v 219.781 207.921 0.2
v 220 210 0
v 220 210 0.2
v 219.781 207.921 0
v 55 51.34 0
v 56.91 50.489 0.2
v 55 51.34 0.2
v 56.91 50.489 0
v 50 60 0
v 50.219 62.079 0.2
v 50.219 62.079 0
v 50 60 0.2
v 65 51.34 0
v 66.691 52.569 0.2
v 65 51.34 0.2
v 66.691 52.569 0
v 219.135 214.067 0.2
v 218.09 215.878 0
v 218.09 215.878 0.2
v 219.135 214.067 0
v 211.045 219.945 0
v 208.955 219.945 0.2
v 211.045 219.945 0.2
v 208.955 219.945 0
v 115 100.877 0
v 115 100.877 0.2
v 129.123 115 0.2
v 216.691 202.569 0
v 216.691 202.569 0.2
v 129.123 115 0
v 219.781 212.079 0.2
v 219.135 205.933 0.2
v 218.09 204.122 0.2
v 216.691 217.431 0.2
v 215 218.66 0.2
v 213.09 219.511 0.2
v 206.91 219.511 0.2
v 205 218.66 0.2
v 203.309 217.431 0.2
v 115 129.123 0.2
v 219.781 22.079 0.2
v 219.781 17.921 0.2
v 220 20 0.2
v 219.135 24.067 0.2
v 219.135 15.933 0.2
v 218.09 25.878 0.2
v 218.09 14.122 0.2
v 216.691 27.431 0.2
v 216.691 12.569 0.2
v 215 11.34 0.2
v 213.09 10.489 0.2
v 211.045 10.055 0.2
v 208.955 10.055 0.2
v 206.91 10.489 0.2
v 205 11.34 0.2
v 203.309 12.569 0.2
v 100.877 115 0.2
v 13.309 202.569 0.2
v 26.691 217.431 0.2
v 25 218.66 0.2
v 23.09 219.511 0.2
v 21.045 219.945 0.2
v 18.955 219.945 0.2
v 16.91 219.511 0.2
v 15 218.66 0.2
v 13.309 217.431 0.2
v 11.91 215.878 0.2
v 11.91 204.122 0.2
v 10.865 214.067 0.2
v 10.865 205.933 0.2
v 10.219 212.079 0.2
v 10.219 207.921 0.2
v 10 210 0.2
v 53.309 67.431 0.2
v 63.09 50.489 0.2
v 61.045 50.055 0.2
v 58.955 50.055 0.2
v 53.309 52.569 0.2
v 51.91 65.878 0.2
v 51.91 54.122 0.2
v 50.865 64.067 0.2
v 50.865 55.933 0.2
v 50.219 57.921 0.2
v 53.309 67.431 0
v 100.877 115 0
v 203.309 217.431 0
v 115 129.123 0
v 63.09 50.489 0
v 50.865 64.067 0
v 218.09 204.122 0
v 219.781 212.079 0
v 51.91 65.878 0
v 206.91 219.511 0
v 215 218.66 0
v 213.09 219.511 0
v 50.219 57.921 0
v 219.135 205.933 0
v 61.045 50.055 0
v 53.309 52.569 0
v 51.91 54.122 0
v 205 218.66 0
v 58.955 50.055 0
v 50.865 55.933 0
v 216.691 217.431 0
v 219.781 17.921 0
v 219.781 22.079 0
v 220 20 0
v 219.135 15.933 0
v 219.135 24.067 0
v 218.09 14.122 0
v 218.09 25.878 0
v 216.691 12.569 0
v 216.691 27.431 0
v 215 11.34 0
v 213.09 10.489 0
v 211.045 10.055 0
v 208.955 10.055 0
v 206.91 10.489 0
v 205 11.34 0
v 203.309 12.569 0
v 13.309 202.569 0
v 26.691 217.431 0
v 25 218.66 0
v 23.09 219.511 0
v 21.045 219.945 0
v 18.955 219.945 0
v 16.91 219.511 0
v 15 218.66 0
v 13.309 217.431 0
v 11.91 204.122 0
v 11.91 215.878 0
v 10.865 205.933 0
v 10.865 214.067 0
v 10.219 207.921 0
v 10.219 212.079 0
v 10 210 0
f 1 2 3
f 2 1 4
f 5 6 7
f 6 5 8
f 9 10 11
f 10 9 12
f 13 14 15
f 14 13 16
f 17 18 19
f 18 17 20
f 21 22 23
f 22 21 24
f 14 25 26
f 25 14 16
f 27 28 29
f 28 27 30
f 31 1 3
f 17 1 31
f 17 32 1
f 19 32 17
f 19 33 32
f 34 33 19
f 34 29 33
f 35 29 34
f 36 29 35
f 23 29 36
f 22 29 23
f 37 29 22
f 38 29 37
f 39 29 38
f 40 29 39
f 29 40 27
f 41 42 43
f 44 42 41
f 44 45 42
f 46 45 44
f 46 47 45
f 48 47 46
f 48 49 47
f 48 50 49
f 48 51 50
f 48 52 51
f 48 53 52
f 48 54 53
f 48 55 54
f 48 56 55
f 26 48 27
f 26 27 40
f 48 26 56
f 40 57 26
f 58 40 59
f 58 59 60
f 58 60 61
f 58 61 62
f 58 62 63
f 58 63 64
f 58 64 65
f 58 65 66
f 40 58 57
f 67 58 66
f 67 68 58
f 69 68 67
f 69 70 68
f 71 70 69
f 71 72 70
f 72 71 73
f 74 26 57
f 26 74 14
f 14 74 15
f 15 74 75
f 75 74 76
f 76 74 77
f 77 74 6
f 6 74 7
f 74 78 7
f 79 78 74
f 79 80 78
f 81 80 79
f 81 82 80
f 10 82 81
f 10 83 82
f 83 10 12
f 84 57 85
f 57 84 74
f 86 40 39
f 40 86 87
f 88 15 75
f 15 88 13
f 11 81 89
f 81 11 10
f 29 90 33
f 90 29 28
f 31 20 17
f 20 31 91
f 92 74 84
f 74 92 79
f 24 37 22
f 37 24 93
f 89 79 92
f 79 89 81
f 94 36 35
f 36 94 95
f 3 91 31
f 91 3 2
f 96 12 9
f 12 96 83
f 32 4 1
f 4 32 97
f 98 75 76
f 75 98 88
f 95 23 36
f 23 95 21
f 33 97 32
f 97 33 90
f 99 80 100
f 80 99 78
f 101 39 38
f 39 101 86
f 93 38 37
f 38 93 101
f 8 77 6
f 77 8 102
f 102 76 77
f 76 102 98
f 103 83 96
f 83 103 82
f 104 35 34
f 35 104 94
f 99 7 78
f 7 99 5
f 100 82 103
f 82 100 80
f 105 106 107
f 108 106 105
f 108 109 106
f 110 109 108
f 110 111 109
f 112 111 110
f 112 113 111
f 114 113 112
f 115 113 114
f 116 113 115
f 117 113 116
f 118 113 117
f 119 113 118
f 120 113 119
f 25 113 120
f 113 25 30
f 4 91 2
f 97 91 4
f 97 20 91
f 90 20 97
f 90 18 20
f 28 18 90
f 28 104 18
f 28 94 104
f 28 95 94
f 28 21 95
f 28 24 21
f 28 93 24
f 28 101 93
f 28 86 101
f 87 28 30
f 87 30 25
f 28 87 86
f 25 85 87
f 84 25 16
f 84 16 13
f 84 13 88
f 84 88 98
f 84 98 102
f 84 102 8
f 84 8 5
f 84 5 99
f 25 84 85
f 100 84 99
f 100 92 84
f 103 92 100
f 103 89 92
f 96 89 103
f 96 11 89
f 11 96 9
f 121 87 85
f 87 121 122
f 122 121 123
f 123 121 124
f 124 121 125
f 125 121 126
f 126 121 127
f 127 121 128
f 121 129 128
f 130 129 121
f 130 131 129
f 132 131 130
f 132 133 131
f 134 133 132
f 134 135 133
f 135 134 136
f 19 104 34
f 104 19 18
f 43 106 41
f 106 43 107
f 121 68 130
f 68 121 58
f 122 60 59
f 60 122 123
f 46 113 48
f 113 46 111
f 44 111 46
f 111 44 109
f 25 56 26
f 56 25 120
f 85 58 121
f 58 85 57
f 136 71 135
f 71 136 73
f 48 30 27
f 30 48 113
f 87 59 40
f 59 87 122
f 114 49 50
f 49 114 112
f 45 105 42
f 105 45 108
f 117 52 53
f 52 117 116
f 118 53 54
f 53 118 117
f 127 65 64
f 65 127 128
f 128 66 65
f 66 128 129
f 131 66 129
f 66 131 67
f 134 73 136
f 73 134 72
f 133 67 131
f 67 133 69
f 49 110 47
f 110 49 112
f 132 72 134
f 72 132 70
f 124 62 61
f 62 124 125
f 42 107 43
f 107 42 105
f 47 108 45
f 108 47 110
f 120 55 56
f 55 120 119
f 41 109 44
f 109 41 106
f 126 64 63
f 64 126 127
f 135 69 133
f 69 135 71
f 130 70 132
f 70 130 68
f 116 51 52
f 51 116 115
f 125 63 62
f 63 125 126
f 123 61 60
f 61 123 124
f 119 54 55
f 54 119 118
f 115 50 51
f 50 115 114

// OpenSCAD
// bed level cross

HEIGHT = 0.2;
LINE_WIDTH = 20;

BED_X = 230;
BED_Y = 230;

union() {
  
  hull() {
    translate([ 50 + LINE_WIDTH / 2, 50 + LINE_WIDTH / 2, 0])
    cylinder(h = HEIGHT, d = LINE_WIDTH);

    translate([BED_X - LINE_WIDTH, BED_Y - LINE_WIDTH, 0])
    cylinder(h = HEIGHT, d = LINE_WIDTH);
  }

  hull() {
    translate([BED_X - LINE_WIDTH, LINE_WIDTH, 0])
    cylinder(h = HEIGHT, d = LINE_WIDTH);

    translate([LINE_WIDTH, BED_Y - LINE_WIDTH, 0])
    cylinder(h = HEIGHT, d = LINE_WIDTH);
  }
}
